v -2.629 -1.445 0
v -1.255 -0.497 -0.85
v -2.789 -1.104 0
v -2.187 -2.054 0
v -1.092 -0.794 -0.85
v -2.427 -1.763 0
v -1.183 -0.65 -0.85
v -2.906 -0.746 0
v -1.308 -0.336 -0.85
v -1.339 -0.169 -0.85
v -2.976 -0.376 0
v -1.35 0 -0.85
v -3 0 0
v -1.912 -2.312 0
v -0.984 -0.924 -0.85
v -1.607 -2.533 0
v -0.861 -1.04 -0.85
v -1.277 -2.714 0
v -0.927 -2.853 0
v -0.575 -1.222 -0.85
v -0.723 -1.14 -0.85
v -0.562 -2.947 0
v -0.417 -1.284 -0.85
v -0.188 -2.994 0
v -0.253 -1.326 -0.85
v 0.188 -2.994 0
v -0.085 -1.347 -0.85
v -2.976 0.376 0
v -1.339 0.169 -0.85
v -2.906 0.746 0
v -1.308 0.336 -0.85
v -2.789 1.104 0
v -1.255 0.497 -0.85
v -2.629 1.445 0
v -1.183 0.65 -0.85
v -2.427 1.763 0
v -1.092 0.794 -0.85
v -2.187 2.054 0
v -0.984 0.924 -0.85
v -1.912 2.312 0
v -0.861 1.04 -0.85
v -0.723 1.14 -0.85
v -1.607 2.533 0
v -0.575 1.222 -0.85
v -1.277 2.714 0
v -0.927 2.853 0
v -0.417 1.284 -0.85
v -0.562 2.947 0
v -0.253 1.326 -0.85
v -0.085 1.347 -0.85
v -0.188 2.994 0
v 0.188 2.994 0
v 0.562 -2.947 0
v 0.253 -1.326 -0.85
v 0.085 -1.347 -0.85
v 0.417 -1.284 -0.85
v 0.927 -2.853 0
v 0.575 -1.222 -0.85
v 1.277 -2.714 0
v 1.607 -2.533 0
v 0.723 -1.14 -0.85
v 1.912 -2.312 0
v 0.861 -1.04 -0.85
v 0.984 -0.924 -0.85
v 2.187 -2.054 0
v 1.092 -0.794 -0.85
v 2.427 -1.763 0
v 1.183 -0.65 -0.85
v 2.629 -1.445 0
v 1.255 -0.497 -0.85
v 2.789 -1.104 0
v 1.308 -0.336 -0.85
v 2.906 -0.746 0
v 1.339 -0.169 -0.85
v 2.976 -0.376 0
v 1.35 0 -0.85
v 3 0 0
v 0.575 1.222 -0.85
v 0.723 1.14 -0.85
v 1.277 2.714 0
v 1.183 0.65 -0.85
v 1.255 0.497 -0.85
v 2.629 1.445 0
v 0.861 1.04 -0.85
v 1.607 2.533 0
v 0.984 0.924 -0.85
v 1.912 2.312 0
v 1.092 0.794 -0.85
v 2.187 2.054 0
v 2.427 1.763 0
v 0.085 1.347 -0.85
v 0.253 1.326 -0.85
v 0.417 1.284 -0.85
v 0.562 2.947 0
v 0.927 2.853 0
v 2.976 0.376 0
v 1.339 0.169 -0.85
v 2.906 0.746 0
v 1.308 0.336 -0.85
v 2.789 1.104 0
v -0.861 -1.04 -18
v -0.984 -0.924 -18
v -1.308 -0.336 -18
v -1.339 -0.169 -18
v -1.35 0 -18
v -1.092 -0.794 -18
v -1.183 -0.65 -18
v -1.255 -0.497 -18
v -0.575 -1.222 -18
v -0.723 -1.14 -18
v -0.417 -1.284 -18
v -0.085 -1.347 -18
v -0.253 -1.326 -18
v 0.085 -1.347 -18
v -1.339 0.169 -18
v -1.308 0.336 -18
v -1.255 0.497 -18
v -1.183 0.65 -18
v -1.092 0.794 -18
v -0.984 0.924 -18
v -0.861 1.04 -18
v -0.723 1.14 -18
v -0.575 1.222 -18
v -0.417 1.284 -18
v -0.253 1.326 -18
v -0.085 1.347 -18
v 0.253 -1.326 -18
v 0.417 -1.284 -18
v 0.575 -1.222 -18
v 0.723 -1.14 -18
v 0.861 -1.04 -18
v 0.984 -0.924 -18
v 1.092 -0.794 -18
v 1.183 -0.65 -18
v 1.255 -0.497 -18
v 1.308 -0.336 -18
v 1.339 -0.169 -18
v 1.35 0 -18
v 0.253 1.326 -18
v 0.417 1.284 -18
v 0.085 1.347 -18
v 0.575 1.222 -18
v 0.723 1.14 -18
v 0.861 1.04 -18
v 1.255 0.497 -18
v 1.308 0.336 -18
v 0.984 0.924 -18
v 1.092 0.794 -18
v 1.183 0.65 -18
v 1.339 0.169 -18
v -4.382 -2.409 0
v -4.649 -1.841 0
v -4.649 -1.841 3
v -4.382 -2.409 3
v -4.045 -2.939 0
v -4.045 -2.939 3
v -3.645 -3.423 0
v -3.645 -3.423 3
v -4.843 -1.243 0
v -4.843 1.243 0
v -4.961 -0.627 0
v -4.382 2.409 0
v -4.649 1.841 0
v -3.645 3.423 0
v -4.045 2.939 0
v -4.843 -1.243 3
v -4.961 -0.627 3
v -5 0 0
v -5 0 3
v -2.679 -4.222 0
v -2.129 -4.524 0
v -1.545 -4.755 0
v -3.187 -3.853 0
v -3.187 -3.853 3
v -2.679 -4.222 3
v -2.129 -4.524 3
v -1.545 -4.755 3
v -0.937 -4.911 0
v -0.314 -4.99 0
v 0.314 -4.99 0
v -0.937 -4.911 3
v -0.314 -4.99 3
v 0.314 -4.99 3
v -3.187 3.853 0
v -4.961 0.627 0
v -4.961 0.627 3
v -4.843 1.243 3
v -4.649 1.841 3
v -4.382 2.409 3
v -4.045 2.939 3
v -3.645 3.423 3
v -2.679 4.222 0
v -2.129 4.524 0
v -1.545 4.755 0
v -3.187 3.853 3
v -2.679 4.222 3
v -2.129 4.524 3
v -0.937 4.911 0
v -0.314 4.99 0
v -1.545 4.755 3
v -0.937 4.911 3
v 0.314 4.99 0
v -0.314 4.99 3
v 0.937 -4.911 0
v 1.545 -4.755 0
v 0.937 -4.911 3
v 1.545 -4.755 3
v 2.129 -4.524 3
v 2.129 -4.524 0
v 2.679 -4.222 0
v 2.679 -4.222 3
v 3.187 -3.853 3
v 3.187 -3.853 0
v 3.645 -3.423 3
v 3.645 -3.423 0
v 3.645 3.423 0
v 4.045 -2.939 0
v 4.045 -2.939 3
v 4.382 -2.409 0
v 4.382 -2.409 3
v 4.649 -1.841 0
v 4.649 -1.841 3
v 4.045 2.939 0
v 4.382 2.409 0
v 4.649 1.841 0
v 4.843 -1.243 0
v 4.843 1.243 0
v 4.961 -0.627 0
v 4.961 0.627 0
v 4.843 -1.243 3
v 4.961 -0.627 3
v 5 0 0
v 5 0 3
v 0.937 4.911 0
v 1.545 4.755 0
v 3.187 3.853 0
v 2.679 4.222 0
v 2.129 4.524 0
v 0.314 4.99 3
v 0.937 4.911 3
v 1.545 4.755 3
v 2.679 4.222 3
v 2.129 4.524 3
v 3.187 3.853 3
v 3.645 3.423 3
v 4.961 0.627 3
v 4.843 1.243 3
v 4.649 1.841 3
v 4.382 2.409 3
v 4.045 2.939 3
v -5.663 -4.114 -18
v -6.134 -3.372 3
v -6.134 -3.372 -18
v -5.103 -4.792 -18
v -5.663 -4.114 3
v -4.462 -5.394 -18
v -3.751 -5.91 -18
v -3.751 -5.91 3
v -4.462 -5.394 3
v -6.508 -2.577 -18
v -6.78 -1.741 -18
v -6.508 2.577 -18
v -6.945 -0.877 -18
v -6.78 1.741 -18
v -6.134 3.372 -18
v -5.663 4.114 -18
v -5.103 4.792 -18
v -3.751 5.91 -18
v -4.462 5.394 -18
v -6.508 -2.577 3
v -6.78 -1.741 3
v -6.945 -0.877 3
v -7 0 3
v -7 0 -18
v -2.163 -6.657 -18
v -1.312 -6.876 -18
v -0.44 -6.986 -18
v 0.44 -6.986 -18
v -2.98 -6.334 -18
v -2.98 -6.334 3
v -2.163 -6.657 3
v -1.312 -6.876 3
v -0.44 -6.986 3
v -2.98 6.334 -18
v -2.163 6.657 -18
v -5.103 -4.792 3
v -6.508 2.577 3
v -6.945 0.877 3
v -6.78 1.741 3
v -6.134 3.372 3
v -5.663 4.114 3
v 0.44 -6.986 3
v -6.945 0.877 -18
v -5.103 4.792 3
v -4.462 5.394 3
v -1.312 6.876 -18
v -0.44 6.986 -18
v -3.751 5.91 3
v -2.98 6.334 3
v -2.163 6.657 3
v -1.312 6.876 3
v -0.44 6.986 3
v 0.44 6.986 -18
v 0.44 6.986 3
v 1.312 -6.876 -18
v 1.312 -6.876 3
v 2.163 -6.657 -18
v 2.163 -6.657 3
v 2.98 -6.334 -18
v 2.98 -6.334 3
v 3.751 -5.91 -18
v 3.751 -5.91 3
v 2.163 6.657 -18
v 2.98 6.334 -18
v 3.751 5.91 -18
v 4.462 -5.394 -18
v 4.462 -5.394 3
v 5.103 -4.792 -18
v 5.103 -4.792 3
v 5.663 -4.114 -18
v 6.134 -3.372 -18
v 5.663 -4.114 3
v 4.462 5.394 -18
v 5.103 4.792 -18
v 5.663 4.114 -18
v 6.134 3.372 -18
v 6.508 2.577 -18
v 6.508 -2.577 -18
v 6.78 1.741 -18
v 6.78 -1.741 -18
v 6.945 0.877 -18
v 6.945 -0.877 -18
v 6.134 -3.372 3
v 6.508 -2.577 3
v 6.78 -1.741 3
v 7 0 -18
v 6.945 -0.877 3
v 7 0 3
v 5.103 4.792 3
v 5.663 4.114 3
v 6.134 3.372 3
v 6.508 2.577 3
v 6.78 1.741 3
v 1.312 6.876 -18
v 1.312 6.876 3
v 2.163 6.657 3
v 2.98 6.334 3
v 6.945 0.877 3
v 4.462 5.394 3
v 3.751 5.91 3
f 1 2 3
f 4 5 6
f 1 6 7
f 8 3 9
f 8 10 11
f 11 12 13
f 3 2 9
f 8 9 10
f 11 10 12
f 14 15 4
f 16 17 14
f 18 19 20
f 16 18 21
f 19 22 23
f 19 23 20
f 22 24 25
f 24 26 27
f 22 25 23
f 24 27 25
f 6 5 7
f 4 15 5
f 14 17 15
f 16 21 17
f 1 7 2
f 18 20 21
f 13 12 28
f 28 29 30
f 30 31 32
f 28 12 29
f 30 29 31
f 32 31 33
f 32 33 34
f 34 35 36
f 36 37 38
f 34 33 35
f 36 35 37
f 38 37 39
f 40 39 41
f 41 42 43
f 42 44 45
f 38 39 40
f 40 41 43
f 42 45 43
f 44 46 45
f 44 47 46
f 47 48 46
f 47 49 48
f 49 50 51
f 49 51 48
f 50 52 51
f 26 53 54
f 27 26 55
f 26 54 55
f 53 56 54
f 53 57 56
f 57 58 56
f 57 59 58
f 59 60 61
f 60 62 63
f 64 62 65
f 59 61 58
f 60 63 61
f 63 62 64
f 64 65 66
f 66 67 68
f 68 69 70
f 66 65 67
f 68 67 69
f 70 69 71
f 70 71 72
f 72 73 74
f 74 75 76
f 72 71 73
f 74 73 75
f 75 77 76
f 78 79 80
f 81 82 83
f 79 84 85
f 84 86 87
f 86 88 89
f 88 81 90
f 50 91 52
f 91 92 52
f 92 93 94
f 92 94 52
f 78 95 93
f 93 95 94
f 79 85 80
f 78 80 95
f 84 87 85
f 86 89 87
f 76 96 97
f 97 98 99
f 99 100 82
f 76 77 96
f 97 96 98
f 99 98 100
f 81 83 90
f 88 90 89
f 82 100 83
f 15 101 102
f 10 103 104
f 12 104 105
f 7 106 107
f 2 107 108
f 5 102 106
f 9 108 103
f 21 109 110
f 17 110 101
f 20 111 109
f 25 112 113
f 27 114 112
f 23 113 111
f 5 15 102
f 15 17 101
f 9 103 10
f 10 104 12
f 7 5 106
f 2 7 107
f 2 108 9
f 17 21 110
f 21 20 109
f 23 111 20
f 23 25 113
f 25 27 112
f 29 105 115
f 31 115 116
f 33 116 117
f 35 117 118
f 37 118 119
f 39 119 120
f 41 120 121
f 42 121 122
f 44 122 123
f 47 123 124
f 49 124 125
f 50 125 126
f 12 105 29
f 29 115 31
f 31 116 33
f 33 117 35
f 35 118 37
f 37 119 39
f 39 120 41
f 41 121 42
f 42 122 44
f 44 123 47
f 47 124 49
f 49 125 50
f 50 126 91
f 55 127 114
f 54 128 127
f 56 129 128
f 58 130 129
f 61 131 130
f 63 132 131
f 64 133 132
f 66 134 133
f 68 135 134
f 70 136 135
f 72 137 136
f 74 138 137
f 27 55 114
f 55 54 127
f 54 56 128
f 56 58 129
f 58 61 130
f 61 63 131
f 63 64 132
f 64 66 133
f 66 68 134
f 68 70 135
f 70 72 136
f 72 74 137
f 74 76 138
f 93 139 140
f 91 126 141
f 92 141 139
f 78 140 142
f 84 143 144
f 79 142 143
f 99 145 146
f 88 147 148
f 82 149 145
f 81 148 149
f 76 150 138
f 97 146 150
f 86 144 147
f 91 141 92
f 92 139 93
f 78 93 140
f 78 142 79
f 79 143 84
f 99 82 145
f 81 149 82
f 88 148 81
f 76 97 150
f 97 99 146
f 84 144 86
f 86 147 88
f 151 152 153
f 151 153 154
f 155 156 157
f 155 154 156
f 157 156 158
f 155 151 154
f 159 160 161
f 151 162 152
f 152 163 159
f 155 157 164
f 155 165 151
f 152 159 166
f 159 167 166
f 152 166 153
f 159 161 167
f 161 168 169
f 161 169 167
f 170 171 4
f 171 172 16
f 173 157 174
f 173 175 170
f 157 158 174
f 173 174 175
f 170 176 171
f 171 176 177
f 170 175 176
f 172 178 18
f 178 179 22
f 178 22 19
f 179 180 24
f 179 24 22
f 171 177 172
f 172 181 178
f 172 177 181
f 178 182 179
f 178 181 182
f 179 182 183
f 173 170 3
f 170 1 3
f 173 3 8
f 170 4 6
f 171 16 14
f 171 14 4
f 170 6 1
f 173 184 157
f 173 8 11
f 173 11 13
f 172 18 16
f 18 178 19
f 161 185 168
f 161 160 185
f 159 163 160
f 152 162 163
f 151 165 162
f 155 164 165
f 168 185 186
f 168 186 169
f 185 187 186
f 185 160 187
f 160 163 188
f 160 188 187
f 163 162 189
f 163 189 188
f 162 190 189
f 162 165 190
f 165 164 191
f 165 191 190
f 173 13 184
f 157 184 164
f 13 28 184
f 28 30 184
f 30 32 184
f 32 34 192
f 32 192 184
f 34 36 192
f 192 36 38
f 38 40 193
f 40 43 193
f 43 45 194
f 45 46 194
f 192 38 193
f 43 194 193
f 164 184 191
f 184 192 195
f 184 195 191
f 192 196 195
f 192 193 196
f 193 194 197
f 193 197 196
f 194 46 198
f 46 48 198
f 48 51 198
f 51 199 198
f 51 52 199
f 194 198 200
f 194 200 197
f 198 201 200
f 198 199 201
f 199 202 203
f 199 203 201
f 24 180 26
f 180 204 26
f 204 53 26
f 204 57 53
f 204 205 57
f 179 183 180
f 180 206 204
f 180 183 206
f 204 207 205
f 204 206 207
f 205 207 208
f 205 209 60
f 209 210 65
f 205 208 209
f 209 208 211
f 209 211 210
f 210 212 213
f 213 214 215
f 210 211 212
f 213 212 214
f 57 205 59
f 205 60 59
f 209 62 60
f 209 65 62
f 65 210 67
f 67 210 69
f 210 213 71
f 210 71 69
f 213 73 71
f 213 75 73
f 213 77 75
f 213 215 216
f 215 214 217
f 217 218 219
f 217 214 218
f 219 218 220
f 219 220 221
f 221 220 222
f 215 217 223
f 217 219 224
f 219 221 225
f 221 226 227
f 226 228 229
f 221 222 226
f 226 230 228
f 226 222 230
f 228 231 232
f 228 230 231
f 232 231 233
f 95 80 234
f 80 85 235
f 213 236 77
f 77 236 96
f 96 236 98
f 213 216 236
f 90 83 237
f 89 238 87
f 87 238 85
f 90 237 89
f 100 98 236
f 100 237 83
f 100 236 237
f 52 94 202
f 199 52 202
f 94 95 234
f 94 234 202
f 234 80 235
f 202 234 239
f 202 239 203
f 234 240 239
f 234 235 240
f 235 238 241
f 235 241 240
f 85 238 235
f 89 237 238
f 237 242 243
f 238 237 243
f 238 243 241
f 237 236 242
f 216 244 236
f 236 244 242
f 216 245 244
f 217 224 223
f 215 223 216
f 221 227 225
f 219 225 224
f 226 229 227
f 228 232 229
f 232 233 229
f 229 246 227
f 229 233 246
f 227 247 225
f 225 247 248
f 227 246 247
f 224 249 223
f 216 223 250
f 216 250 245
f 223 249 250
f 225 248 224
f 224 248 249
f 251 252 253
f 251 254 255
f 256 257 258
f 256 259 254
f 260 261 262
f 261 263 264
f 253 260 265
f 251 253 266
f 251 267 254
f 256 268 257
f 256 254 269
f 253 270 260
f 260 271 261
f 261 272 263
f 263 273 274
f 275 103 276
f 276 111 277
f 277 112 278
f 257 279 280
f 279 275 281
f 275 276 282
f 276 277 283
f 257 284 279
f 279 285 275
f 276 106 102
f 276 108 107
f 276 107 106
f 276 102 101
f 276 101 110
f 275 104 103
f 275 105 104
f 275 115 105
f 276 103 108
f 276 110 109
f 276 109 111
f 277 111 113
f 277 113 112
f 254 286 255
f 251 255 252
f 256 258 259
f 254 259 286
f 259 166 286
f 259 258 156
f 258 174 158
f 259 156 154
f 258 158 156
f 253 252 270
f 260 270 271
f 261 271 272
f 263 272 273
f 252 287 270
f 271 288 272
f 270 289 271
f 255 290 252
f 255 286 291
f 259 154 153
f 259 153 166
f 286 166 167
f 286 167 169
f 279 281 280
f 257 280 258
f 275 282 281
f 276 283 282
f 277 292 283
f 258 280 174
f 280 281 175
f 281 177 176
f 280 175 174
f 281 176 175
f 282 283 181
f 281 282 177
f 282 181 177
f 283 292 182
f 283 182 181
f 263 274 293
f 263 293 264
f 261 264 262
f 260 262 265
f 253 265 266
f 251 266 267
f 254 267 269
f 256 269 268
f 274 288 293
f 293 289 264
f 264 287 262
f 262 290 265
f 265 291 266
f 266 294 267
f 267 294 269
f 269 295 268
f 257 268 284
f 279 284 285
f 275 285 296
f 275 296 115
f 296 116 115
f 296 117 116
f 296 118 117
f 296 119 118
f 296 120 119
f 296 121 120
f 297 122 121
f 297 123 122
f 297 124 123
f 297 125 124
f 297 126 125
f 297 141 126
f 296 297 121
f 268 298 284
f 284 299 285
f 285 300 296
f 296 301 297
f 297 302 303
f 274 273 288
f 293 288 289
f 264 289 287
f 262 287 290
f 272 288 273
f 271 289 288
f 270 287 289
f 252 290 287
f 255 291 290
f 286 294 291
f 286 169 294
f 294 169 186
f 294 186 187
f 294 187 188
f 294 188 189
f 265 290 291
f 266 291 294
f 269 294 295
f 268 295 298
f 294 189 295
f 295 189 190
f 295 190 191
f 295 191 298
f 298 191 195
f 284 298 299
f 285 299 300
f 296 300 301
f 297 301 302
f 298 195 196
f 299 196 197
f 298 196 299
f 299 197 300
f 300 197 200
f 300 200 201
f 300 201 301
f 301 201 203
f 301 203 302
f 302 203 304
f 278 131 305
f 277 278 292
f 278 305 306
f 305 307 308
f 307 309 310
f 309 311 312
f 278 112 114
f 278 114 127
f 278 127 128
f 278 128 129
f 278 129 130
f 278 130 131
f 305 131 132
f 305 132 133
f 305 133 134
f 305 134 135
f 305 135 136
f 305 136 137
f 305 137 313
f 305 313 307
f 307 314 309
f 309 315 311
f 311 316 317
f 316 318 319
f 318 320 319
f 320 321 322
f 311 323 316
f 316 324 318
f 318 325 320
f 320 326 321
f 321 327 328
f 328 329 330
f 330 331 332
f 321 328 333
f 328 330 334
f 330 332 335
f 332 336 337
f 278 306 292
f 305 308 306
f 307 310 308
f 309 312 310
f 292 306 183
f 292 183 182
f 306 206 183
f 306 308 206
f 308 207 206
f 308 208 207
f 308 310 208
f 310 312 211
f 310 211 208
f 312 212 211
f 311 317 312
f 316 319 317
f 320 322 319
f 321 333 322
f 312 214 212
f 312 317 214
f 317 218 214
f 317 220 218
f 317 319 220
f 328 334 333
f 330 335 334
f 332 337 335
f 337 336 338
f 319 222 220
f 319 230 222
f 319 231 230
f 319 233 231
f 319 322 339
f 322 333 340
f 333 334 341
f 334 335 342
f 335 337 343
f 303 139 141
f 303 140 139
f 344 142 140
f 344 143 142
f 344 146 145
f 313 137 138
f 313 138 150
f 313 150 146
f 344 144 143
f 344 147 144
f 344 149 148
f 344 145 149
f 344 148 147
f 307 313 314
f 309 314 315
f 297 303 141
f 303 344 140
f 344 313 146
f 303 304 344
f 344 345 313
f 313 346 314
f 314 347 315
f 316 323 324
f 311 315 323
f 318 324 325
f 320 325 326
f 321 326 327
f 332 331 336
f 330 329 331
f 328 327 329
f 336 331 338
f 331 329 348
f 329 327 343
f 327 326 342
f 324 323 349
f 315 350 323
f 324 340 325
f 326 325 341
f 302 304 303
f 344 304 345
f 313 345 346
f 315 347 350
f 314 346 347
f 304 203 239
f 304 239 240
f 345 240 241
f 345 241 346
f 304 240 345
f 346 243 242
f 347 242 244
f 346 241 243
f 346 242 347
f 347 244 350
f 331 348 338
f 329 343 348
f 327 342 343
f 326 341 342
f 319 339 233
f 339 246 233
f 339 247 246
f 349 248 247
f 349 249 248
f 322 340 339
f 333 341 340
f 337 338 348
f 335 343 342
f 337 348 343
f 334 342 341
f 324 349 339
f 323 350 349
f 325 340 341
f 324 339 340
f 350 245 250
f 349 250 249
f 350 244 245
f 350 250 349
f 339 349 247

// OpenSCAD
$fn = 50;

difference() {
	union() {
		translate(v = [0, 0, -18.0]) {
			cylinder(h = 21, r = 7.0);
		}
	}
	union() {
		translate(v = [0, 0, 0]) {
			rotate(a = [0, 0, 0]) {
				difference() {
					union() {
						translate(v = [0, 0, -21.0]) {
							cylinder(h = 21, r = 1.0);
						}
						translate(v = [0, 0, -0.85]) {
							cylinder(h = 0.85, r1 = 1.35, r2 = 3.0);
						}
						translate(v = [0, 0, -21.0]) {
							cylinder(h = 21, r = 1.35);
						}
						translate(v = [0, 0, -21.0]) {
							cylinder(h = 21, r = 1.0);
						}
					}
					union();
				}
			}
		}
		#cylinder(h = 3, r = 5.0);
	}
}
